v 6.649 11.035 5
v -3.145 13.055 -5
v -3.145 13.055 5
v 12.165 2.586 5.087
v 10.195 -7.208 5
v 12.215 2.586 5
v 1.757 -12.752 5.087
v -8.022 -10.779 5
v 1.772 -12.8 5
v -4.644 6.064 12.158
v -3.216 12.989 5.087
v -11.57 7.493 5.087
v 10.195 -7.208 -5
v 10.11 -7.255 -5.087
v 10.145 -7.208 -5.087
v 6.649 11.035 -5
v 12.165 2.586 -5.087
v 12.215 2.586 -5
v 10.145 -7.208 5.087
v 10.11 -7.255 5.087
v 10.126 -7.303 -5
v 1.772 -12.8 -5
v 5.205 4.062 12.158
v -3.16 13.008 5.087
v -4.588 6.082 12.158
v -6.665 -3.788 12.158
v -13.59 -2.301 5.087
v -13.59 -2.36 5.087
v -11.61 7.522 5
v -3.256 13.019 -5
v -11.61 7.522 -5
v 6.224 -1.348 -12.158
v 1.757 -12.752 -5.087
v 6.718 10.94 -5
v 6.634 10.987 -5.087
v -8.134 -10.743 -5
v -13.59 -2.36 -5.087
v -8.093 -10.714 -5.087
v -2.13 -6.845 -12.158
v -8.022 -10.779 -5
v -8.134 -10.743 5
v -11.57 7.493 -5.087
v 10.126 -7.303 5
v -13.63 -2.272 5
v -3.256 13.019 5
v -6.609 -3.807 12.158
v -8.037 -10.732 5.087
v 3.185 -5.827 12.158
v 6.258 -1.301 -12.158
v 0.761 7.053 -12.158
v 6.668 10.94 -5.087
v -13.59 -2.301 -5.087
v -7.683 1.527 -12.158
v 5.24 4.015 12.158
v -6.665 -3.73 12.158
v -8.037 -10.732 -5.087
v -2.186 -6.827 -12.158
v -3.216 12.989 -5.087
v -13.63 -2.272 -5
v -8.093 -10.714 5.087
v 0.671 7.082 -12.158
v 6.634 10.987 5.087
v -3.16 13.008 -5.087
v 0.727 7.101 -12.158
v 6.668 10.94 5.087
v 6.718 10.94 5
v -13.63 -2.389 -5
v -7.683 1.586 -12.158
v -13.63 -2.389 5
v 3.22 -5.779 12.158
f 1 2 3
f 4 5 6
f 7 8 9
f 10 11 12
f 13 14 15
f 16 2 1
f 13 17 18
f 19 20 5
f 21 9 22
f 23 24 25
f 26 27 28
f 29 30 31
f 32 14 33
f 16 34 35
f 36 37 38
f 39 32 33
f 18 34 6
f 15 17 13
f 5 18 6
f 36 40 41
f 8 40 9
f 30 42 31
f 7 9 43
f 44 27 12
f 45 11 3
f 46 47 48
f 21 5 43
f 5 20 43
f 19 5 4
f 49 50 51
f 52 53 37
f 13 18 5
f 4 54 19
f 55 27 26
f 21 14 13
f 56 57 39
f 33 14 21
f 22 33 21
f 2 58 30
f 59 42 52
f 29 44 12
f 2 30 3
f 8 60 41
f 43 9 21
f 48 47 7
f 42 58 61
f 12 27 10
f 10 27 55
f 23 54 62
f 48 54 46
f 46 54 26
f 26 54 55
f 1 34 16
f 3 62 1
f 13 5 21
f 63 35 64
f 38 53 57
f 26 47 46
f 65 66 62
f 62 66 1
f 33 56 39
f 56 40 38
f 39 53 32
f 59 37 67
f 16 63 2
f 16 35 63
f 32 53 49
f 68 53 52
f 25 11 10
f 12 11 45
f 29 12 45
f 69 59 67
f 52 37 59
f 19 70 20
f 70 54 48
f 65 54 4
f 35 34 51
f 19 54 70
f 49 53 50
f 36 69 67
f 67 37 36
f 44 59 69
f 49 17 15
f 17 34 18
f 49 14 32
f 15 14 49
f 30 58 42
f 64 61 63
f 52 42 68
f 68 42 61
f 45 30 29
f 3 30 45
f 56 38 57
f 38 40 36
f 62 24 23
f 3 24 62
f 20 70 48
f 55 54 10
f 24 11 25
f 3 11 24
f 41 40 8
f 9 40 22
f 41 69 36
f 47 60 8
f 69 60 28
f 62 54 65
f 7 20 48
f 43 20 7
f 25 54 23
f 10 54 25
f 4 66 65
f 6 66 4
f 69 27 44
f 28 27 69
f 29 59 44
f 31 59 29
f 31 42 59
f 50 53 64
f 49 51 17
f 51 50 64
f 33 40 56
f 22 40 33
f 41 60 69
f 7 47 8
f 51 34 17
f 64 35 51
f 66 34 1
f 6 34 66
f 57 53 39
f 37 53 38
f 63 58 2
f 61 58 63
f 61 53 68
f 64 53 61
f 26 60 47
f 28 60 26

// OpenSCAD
// Auto-generated OpenSCAD file

    inner_points = 10*[[0.5189873908693398, 0.4014612830439682, 1.207106781182594], [-0.6624123844142482, -0.37590257703693897, 1.207106781190501], [-0.4603944268129078, 0.6034792406453087, 1.2071067811886023], [0.3169694332679993, -0.5779205346382793, 1.2071067811844927], [0.07113577095377736, 0.7053068776558797, -1.20710678118789], [0.6208150278663372, -0.13006891473940857, -1.207106781190796], [-0.7642400214415109, 0.15562762074331987, -1.2071067811822989], [-0.21456076452895106, -0.6797481716519684, -1.207106781185205], [0.6618356586062716, 1.0939888076974356, 0.4999999999947038], [0.6618356586000035, 1.0939888076967899, -0.5000000000052962], [1.2115149155188314, 0.2586130153021473, 0.49999999999179784], [1.2115149155125633, 0.25861301530150155, -0.5000000000082021], [-1.3549399090726046, -0.23305430929603127, 0.5000000000082021], [-1.3549399090788727, -0.23305430929667703, -0.49999999999179784], [-0.8052606521600446, -1.0684301016913196, 0.5000000000052962], [-0.8052606521663127, -1.0684301016919653, -0.4999999999947038], [-0.3175461590759757, 1.2960067652987761, 0.5000000000007122], [-0.3175461590822439, 1.2960067652981304, -0.49999999999928774], [1.009496957917491, -0.7207688023801, 0.49999999999369654], [1.009496957911223, -0.7207688023807458, -0.5000000000063035], [-1.1529219514712643, 0.7463275083862161, 0.5000000000063035], [-1.1529219514775324, 0.7463275083855703, -0.49999999999369654], [0.17412116552220275, -1.2704480592926601, 0.49999999999928774], [0.1741211655159346, -1.2704480592933058, -0.5000000000007122]];

    outer_points = 10*[[0.014534033109566136, 1.1778924537288806, -0.7546289886538113], [0.48351692784779204, 1.1778924537288806, 0.5795580463764929], [-0.4019230788858629, 1.3325180477160121, 0.14128082798654307], [0.8999740398432211, 1.0232668597417491, -0.31635177026386146], [-0.8751261135739088, -1.068555647675582, -0.22237332202445173], [0.04545416748665429, -1.2872292597821793, -0.5459684355393317], [-0.5435051284440124, -1.068555647675582, 0.7210393778166502], [0.37707515261655067, -1.2872292597821793, 0.39744426430177016], [-0.7574423490735973, 0.5972358354047242, -1.0132606900126142], [-0.963741811855088, -0.37856222329812717, -0.9407439313439117], [0.16313793198696575, 0.37856222329812717, -1.3368558035274942], [-0.043161530794524894, -0.5972358354047242, -1.2643390448587917], [0.043161530794524894, 0.5972358354047242, 1.2643390448587917], [-0.16313793198696575, -0.37856222329812717, 1.3368558035274942], [0.963741811855088, 0.37856222329812717, 0.9407439313439117], [0.7574423490735973, -0.5972358354047242, 1.0132606900126142], [-1.173899461069026, 0.7518614293918557, -0.11735087337226002], [-1.380198923850517, -0.22393662931099567, -0.04483411470355736], [1.0485779387206207, 0.22393662931099567, -0.8985785851375445], [0.8422784759391297, -0.7518614293918557, -0.8260618264688419], [-0.8422784759391297, 0.7518614293918557, 0.8260618264688419], [-1.0485779387206207, -0.22393662931099567, 0.8985785851375445], [1.380198923850517, 0.22393662931099567, 0.04483411470355736], [1.173899461069026, -0.7518614293918557, 0.11735087337226002]];

    // Convex hull for inner set (I)
    module inner_hull() {
        hull() {
            for (p = inner_points) {
                translate(p) sphere(r=0.1);
            }
        }
    }

    // Convex hull for outer set (O) minus inner hull (O \ I)
    module outer_minus_inner() {
        difference() {
            hull() {
                for (p = outer_points) {
                    translate(p) sphere(r=0.1);
                }
            }
            inner_hull(); // Subtract inner hull
        }
    }

    // Convex hull for outer set (O) minus all translated inner hulls
    module outer_minus_AllTranslationInner() {
        difference() {
            hull() {
                for (p = outer_points) {
                    translate(p) sphere(r=0.1);
                }
            }
            hull() {
                translate([0,0,50]) inner_hull();
                translate([0,0,-50]) inner_hull();
            }; // Subtract translated inner hulls
        }
    }

    // Difference between outer_minus_inner and outer_minus_AllTranslationInner
    module outer_minus_inner_diff() {
        difference() {
            // Outer minus inner
            difference() {
                hull() {
                    for (p = outer_points) {
                        translate(p) sphere(r=0.1);
                    }
                }
                inner_hull();
            }

            // Subtract Outer minus AllTranslationInner
            difference() {
                hull() {
                    for (p = outer_points) {
                        translate(p) sphere(r=0.1);
                    }
                }
                hull() {
                    translate([0,0,50]) inner_hull();
                    translate([0,0,-50]) inner_hull();
                };
            }
        }
    }

    // Rendering all with colors applied
    color([1, 0, 0, 0.5]) inner_hull(); // Transparent red
    
